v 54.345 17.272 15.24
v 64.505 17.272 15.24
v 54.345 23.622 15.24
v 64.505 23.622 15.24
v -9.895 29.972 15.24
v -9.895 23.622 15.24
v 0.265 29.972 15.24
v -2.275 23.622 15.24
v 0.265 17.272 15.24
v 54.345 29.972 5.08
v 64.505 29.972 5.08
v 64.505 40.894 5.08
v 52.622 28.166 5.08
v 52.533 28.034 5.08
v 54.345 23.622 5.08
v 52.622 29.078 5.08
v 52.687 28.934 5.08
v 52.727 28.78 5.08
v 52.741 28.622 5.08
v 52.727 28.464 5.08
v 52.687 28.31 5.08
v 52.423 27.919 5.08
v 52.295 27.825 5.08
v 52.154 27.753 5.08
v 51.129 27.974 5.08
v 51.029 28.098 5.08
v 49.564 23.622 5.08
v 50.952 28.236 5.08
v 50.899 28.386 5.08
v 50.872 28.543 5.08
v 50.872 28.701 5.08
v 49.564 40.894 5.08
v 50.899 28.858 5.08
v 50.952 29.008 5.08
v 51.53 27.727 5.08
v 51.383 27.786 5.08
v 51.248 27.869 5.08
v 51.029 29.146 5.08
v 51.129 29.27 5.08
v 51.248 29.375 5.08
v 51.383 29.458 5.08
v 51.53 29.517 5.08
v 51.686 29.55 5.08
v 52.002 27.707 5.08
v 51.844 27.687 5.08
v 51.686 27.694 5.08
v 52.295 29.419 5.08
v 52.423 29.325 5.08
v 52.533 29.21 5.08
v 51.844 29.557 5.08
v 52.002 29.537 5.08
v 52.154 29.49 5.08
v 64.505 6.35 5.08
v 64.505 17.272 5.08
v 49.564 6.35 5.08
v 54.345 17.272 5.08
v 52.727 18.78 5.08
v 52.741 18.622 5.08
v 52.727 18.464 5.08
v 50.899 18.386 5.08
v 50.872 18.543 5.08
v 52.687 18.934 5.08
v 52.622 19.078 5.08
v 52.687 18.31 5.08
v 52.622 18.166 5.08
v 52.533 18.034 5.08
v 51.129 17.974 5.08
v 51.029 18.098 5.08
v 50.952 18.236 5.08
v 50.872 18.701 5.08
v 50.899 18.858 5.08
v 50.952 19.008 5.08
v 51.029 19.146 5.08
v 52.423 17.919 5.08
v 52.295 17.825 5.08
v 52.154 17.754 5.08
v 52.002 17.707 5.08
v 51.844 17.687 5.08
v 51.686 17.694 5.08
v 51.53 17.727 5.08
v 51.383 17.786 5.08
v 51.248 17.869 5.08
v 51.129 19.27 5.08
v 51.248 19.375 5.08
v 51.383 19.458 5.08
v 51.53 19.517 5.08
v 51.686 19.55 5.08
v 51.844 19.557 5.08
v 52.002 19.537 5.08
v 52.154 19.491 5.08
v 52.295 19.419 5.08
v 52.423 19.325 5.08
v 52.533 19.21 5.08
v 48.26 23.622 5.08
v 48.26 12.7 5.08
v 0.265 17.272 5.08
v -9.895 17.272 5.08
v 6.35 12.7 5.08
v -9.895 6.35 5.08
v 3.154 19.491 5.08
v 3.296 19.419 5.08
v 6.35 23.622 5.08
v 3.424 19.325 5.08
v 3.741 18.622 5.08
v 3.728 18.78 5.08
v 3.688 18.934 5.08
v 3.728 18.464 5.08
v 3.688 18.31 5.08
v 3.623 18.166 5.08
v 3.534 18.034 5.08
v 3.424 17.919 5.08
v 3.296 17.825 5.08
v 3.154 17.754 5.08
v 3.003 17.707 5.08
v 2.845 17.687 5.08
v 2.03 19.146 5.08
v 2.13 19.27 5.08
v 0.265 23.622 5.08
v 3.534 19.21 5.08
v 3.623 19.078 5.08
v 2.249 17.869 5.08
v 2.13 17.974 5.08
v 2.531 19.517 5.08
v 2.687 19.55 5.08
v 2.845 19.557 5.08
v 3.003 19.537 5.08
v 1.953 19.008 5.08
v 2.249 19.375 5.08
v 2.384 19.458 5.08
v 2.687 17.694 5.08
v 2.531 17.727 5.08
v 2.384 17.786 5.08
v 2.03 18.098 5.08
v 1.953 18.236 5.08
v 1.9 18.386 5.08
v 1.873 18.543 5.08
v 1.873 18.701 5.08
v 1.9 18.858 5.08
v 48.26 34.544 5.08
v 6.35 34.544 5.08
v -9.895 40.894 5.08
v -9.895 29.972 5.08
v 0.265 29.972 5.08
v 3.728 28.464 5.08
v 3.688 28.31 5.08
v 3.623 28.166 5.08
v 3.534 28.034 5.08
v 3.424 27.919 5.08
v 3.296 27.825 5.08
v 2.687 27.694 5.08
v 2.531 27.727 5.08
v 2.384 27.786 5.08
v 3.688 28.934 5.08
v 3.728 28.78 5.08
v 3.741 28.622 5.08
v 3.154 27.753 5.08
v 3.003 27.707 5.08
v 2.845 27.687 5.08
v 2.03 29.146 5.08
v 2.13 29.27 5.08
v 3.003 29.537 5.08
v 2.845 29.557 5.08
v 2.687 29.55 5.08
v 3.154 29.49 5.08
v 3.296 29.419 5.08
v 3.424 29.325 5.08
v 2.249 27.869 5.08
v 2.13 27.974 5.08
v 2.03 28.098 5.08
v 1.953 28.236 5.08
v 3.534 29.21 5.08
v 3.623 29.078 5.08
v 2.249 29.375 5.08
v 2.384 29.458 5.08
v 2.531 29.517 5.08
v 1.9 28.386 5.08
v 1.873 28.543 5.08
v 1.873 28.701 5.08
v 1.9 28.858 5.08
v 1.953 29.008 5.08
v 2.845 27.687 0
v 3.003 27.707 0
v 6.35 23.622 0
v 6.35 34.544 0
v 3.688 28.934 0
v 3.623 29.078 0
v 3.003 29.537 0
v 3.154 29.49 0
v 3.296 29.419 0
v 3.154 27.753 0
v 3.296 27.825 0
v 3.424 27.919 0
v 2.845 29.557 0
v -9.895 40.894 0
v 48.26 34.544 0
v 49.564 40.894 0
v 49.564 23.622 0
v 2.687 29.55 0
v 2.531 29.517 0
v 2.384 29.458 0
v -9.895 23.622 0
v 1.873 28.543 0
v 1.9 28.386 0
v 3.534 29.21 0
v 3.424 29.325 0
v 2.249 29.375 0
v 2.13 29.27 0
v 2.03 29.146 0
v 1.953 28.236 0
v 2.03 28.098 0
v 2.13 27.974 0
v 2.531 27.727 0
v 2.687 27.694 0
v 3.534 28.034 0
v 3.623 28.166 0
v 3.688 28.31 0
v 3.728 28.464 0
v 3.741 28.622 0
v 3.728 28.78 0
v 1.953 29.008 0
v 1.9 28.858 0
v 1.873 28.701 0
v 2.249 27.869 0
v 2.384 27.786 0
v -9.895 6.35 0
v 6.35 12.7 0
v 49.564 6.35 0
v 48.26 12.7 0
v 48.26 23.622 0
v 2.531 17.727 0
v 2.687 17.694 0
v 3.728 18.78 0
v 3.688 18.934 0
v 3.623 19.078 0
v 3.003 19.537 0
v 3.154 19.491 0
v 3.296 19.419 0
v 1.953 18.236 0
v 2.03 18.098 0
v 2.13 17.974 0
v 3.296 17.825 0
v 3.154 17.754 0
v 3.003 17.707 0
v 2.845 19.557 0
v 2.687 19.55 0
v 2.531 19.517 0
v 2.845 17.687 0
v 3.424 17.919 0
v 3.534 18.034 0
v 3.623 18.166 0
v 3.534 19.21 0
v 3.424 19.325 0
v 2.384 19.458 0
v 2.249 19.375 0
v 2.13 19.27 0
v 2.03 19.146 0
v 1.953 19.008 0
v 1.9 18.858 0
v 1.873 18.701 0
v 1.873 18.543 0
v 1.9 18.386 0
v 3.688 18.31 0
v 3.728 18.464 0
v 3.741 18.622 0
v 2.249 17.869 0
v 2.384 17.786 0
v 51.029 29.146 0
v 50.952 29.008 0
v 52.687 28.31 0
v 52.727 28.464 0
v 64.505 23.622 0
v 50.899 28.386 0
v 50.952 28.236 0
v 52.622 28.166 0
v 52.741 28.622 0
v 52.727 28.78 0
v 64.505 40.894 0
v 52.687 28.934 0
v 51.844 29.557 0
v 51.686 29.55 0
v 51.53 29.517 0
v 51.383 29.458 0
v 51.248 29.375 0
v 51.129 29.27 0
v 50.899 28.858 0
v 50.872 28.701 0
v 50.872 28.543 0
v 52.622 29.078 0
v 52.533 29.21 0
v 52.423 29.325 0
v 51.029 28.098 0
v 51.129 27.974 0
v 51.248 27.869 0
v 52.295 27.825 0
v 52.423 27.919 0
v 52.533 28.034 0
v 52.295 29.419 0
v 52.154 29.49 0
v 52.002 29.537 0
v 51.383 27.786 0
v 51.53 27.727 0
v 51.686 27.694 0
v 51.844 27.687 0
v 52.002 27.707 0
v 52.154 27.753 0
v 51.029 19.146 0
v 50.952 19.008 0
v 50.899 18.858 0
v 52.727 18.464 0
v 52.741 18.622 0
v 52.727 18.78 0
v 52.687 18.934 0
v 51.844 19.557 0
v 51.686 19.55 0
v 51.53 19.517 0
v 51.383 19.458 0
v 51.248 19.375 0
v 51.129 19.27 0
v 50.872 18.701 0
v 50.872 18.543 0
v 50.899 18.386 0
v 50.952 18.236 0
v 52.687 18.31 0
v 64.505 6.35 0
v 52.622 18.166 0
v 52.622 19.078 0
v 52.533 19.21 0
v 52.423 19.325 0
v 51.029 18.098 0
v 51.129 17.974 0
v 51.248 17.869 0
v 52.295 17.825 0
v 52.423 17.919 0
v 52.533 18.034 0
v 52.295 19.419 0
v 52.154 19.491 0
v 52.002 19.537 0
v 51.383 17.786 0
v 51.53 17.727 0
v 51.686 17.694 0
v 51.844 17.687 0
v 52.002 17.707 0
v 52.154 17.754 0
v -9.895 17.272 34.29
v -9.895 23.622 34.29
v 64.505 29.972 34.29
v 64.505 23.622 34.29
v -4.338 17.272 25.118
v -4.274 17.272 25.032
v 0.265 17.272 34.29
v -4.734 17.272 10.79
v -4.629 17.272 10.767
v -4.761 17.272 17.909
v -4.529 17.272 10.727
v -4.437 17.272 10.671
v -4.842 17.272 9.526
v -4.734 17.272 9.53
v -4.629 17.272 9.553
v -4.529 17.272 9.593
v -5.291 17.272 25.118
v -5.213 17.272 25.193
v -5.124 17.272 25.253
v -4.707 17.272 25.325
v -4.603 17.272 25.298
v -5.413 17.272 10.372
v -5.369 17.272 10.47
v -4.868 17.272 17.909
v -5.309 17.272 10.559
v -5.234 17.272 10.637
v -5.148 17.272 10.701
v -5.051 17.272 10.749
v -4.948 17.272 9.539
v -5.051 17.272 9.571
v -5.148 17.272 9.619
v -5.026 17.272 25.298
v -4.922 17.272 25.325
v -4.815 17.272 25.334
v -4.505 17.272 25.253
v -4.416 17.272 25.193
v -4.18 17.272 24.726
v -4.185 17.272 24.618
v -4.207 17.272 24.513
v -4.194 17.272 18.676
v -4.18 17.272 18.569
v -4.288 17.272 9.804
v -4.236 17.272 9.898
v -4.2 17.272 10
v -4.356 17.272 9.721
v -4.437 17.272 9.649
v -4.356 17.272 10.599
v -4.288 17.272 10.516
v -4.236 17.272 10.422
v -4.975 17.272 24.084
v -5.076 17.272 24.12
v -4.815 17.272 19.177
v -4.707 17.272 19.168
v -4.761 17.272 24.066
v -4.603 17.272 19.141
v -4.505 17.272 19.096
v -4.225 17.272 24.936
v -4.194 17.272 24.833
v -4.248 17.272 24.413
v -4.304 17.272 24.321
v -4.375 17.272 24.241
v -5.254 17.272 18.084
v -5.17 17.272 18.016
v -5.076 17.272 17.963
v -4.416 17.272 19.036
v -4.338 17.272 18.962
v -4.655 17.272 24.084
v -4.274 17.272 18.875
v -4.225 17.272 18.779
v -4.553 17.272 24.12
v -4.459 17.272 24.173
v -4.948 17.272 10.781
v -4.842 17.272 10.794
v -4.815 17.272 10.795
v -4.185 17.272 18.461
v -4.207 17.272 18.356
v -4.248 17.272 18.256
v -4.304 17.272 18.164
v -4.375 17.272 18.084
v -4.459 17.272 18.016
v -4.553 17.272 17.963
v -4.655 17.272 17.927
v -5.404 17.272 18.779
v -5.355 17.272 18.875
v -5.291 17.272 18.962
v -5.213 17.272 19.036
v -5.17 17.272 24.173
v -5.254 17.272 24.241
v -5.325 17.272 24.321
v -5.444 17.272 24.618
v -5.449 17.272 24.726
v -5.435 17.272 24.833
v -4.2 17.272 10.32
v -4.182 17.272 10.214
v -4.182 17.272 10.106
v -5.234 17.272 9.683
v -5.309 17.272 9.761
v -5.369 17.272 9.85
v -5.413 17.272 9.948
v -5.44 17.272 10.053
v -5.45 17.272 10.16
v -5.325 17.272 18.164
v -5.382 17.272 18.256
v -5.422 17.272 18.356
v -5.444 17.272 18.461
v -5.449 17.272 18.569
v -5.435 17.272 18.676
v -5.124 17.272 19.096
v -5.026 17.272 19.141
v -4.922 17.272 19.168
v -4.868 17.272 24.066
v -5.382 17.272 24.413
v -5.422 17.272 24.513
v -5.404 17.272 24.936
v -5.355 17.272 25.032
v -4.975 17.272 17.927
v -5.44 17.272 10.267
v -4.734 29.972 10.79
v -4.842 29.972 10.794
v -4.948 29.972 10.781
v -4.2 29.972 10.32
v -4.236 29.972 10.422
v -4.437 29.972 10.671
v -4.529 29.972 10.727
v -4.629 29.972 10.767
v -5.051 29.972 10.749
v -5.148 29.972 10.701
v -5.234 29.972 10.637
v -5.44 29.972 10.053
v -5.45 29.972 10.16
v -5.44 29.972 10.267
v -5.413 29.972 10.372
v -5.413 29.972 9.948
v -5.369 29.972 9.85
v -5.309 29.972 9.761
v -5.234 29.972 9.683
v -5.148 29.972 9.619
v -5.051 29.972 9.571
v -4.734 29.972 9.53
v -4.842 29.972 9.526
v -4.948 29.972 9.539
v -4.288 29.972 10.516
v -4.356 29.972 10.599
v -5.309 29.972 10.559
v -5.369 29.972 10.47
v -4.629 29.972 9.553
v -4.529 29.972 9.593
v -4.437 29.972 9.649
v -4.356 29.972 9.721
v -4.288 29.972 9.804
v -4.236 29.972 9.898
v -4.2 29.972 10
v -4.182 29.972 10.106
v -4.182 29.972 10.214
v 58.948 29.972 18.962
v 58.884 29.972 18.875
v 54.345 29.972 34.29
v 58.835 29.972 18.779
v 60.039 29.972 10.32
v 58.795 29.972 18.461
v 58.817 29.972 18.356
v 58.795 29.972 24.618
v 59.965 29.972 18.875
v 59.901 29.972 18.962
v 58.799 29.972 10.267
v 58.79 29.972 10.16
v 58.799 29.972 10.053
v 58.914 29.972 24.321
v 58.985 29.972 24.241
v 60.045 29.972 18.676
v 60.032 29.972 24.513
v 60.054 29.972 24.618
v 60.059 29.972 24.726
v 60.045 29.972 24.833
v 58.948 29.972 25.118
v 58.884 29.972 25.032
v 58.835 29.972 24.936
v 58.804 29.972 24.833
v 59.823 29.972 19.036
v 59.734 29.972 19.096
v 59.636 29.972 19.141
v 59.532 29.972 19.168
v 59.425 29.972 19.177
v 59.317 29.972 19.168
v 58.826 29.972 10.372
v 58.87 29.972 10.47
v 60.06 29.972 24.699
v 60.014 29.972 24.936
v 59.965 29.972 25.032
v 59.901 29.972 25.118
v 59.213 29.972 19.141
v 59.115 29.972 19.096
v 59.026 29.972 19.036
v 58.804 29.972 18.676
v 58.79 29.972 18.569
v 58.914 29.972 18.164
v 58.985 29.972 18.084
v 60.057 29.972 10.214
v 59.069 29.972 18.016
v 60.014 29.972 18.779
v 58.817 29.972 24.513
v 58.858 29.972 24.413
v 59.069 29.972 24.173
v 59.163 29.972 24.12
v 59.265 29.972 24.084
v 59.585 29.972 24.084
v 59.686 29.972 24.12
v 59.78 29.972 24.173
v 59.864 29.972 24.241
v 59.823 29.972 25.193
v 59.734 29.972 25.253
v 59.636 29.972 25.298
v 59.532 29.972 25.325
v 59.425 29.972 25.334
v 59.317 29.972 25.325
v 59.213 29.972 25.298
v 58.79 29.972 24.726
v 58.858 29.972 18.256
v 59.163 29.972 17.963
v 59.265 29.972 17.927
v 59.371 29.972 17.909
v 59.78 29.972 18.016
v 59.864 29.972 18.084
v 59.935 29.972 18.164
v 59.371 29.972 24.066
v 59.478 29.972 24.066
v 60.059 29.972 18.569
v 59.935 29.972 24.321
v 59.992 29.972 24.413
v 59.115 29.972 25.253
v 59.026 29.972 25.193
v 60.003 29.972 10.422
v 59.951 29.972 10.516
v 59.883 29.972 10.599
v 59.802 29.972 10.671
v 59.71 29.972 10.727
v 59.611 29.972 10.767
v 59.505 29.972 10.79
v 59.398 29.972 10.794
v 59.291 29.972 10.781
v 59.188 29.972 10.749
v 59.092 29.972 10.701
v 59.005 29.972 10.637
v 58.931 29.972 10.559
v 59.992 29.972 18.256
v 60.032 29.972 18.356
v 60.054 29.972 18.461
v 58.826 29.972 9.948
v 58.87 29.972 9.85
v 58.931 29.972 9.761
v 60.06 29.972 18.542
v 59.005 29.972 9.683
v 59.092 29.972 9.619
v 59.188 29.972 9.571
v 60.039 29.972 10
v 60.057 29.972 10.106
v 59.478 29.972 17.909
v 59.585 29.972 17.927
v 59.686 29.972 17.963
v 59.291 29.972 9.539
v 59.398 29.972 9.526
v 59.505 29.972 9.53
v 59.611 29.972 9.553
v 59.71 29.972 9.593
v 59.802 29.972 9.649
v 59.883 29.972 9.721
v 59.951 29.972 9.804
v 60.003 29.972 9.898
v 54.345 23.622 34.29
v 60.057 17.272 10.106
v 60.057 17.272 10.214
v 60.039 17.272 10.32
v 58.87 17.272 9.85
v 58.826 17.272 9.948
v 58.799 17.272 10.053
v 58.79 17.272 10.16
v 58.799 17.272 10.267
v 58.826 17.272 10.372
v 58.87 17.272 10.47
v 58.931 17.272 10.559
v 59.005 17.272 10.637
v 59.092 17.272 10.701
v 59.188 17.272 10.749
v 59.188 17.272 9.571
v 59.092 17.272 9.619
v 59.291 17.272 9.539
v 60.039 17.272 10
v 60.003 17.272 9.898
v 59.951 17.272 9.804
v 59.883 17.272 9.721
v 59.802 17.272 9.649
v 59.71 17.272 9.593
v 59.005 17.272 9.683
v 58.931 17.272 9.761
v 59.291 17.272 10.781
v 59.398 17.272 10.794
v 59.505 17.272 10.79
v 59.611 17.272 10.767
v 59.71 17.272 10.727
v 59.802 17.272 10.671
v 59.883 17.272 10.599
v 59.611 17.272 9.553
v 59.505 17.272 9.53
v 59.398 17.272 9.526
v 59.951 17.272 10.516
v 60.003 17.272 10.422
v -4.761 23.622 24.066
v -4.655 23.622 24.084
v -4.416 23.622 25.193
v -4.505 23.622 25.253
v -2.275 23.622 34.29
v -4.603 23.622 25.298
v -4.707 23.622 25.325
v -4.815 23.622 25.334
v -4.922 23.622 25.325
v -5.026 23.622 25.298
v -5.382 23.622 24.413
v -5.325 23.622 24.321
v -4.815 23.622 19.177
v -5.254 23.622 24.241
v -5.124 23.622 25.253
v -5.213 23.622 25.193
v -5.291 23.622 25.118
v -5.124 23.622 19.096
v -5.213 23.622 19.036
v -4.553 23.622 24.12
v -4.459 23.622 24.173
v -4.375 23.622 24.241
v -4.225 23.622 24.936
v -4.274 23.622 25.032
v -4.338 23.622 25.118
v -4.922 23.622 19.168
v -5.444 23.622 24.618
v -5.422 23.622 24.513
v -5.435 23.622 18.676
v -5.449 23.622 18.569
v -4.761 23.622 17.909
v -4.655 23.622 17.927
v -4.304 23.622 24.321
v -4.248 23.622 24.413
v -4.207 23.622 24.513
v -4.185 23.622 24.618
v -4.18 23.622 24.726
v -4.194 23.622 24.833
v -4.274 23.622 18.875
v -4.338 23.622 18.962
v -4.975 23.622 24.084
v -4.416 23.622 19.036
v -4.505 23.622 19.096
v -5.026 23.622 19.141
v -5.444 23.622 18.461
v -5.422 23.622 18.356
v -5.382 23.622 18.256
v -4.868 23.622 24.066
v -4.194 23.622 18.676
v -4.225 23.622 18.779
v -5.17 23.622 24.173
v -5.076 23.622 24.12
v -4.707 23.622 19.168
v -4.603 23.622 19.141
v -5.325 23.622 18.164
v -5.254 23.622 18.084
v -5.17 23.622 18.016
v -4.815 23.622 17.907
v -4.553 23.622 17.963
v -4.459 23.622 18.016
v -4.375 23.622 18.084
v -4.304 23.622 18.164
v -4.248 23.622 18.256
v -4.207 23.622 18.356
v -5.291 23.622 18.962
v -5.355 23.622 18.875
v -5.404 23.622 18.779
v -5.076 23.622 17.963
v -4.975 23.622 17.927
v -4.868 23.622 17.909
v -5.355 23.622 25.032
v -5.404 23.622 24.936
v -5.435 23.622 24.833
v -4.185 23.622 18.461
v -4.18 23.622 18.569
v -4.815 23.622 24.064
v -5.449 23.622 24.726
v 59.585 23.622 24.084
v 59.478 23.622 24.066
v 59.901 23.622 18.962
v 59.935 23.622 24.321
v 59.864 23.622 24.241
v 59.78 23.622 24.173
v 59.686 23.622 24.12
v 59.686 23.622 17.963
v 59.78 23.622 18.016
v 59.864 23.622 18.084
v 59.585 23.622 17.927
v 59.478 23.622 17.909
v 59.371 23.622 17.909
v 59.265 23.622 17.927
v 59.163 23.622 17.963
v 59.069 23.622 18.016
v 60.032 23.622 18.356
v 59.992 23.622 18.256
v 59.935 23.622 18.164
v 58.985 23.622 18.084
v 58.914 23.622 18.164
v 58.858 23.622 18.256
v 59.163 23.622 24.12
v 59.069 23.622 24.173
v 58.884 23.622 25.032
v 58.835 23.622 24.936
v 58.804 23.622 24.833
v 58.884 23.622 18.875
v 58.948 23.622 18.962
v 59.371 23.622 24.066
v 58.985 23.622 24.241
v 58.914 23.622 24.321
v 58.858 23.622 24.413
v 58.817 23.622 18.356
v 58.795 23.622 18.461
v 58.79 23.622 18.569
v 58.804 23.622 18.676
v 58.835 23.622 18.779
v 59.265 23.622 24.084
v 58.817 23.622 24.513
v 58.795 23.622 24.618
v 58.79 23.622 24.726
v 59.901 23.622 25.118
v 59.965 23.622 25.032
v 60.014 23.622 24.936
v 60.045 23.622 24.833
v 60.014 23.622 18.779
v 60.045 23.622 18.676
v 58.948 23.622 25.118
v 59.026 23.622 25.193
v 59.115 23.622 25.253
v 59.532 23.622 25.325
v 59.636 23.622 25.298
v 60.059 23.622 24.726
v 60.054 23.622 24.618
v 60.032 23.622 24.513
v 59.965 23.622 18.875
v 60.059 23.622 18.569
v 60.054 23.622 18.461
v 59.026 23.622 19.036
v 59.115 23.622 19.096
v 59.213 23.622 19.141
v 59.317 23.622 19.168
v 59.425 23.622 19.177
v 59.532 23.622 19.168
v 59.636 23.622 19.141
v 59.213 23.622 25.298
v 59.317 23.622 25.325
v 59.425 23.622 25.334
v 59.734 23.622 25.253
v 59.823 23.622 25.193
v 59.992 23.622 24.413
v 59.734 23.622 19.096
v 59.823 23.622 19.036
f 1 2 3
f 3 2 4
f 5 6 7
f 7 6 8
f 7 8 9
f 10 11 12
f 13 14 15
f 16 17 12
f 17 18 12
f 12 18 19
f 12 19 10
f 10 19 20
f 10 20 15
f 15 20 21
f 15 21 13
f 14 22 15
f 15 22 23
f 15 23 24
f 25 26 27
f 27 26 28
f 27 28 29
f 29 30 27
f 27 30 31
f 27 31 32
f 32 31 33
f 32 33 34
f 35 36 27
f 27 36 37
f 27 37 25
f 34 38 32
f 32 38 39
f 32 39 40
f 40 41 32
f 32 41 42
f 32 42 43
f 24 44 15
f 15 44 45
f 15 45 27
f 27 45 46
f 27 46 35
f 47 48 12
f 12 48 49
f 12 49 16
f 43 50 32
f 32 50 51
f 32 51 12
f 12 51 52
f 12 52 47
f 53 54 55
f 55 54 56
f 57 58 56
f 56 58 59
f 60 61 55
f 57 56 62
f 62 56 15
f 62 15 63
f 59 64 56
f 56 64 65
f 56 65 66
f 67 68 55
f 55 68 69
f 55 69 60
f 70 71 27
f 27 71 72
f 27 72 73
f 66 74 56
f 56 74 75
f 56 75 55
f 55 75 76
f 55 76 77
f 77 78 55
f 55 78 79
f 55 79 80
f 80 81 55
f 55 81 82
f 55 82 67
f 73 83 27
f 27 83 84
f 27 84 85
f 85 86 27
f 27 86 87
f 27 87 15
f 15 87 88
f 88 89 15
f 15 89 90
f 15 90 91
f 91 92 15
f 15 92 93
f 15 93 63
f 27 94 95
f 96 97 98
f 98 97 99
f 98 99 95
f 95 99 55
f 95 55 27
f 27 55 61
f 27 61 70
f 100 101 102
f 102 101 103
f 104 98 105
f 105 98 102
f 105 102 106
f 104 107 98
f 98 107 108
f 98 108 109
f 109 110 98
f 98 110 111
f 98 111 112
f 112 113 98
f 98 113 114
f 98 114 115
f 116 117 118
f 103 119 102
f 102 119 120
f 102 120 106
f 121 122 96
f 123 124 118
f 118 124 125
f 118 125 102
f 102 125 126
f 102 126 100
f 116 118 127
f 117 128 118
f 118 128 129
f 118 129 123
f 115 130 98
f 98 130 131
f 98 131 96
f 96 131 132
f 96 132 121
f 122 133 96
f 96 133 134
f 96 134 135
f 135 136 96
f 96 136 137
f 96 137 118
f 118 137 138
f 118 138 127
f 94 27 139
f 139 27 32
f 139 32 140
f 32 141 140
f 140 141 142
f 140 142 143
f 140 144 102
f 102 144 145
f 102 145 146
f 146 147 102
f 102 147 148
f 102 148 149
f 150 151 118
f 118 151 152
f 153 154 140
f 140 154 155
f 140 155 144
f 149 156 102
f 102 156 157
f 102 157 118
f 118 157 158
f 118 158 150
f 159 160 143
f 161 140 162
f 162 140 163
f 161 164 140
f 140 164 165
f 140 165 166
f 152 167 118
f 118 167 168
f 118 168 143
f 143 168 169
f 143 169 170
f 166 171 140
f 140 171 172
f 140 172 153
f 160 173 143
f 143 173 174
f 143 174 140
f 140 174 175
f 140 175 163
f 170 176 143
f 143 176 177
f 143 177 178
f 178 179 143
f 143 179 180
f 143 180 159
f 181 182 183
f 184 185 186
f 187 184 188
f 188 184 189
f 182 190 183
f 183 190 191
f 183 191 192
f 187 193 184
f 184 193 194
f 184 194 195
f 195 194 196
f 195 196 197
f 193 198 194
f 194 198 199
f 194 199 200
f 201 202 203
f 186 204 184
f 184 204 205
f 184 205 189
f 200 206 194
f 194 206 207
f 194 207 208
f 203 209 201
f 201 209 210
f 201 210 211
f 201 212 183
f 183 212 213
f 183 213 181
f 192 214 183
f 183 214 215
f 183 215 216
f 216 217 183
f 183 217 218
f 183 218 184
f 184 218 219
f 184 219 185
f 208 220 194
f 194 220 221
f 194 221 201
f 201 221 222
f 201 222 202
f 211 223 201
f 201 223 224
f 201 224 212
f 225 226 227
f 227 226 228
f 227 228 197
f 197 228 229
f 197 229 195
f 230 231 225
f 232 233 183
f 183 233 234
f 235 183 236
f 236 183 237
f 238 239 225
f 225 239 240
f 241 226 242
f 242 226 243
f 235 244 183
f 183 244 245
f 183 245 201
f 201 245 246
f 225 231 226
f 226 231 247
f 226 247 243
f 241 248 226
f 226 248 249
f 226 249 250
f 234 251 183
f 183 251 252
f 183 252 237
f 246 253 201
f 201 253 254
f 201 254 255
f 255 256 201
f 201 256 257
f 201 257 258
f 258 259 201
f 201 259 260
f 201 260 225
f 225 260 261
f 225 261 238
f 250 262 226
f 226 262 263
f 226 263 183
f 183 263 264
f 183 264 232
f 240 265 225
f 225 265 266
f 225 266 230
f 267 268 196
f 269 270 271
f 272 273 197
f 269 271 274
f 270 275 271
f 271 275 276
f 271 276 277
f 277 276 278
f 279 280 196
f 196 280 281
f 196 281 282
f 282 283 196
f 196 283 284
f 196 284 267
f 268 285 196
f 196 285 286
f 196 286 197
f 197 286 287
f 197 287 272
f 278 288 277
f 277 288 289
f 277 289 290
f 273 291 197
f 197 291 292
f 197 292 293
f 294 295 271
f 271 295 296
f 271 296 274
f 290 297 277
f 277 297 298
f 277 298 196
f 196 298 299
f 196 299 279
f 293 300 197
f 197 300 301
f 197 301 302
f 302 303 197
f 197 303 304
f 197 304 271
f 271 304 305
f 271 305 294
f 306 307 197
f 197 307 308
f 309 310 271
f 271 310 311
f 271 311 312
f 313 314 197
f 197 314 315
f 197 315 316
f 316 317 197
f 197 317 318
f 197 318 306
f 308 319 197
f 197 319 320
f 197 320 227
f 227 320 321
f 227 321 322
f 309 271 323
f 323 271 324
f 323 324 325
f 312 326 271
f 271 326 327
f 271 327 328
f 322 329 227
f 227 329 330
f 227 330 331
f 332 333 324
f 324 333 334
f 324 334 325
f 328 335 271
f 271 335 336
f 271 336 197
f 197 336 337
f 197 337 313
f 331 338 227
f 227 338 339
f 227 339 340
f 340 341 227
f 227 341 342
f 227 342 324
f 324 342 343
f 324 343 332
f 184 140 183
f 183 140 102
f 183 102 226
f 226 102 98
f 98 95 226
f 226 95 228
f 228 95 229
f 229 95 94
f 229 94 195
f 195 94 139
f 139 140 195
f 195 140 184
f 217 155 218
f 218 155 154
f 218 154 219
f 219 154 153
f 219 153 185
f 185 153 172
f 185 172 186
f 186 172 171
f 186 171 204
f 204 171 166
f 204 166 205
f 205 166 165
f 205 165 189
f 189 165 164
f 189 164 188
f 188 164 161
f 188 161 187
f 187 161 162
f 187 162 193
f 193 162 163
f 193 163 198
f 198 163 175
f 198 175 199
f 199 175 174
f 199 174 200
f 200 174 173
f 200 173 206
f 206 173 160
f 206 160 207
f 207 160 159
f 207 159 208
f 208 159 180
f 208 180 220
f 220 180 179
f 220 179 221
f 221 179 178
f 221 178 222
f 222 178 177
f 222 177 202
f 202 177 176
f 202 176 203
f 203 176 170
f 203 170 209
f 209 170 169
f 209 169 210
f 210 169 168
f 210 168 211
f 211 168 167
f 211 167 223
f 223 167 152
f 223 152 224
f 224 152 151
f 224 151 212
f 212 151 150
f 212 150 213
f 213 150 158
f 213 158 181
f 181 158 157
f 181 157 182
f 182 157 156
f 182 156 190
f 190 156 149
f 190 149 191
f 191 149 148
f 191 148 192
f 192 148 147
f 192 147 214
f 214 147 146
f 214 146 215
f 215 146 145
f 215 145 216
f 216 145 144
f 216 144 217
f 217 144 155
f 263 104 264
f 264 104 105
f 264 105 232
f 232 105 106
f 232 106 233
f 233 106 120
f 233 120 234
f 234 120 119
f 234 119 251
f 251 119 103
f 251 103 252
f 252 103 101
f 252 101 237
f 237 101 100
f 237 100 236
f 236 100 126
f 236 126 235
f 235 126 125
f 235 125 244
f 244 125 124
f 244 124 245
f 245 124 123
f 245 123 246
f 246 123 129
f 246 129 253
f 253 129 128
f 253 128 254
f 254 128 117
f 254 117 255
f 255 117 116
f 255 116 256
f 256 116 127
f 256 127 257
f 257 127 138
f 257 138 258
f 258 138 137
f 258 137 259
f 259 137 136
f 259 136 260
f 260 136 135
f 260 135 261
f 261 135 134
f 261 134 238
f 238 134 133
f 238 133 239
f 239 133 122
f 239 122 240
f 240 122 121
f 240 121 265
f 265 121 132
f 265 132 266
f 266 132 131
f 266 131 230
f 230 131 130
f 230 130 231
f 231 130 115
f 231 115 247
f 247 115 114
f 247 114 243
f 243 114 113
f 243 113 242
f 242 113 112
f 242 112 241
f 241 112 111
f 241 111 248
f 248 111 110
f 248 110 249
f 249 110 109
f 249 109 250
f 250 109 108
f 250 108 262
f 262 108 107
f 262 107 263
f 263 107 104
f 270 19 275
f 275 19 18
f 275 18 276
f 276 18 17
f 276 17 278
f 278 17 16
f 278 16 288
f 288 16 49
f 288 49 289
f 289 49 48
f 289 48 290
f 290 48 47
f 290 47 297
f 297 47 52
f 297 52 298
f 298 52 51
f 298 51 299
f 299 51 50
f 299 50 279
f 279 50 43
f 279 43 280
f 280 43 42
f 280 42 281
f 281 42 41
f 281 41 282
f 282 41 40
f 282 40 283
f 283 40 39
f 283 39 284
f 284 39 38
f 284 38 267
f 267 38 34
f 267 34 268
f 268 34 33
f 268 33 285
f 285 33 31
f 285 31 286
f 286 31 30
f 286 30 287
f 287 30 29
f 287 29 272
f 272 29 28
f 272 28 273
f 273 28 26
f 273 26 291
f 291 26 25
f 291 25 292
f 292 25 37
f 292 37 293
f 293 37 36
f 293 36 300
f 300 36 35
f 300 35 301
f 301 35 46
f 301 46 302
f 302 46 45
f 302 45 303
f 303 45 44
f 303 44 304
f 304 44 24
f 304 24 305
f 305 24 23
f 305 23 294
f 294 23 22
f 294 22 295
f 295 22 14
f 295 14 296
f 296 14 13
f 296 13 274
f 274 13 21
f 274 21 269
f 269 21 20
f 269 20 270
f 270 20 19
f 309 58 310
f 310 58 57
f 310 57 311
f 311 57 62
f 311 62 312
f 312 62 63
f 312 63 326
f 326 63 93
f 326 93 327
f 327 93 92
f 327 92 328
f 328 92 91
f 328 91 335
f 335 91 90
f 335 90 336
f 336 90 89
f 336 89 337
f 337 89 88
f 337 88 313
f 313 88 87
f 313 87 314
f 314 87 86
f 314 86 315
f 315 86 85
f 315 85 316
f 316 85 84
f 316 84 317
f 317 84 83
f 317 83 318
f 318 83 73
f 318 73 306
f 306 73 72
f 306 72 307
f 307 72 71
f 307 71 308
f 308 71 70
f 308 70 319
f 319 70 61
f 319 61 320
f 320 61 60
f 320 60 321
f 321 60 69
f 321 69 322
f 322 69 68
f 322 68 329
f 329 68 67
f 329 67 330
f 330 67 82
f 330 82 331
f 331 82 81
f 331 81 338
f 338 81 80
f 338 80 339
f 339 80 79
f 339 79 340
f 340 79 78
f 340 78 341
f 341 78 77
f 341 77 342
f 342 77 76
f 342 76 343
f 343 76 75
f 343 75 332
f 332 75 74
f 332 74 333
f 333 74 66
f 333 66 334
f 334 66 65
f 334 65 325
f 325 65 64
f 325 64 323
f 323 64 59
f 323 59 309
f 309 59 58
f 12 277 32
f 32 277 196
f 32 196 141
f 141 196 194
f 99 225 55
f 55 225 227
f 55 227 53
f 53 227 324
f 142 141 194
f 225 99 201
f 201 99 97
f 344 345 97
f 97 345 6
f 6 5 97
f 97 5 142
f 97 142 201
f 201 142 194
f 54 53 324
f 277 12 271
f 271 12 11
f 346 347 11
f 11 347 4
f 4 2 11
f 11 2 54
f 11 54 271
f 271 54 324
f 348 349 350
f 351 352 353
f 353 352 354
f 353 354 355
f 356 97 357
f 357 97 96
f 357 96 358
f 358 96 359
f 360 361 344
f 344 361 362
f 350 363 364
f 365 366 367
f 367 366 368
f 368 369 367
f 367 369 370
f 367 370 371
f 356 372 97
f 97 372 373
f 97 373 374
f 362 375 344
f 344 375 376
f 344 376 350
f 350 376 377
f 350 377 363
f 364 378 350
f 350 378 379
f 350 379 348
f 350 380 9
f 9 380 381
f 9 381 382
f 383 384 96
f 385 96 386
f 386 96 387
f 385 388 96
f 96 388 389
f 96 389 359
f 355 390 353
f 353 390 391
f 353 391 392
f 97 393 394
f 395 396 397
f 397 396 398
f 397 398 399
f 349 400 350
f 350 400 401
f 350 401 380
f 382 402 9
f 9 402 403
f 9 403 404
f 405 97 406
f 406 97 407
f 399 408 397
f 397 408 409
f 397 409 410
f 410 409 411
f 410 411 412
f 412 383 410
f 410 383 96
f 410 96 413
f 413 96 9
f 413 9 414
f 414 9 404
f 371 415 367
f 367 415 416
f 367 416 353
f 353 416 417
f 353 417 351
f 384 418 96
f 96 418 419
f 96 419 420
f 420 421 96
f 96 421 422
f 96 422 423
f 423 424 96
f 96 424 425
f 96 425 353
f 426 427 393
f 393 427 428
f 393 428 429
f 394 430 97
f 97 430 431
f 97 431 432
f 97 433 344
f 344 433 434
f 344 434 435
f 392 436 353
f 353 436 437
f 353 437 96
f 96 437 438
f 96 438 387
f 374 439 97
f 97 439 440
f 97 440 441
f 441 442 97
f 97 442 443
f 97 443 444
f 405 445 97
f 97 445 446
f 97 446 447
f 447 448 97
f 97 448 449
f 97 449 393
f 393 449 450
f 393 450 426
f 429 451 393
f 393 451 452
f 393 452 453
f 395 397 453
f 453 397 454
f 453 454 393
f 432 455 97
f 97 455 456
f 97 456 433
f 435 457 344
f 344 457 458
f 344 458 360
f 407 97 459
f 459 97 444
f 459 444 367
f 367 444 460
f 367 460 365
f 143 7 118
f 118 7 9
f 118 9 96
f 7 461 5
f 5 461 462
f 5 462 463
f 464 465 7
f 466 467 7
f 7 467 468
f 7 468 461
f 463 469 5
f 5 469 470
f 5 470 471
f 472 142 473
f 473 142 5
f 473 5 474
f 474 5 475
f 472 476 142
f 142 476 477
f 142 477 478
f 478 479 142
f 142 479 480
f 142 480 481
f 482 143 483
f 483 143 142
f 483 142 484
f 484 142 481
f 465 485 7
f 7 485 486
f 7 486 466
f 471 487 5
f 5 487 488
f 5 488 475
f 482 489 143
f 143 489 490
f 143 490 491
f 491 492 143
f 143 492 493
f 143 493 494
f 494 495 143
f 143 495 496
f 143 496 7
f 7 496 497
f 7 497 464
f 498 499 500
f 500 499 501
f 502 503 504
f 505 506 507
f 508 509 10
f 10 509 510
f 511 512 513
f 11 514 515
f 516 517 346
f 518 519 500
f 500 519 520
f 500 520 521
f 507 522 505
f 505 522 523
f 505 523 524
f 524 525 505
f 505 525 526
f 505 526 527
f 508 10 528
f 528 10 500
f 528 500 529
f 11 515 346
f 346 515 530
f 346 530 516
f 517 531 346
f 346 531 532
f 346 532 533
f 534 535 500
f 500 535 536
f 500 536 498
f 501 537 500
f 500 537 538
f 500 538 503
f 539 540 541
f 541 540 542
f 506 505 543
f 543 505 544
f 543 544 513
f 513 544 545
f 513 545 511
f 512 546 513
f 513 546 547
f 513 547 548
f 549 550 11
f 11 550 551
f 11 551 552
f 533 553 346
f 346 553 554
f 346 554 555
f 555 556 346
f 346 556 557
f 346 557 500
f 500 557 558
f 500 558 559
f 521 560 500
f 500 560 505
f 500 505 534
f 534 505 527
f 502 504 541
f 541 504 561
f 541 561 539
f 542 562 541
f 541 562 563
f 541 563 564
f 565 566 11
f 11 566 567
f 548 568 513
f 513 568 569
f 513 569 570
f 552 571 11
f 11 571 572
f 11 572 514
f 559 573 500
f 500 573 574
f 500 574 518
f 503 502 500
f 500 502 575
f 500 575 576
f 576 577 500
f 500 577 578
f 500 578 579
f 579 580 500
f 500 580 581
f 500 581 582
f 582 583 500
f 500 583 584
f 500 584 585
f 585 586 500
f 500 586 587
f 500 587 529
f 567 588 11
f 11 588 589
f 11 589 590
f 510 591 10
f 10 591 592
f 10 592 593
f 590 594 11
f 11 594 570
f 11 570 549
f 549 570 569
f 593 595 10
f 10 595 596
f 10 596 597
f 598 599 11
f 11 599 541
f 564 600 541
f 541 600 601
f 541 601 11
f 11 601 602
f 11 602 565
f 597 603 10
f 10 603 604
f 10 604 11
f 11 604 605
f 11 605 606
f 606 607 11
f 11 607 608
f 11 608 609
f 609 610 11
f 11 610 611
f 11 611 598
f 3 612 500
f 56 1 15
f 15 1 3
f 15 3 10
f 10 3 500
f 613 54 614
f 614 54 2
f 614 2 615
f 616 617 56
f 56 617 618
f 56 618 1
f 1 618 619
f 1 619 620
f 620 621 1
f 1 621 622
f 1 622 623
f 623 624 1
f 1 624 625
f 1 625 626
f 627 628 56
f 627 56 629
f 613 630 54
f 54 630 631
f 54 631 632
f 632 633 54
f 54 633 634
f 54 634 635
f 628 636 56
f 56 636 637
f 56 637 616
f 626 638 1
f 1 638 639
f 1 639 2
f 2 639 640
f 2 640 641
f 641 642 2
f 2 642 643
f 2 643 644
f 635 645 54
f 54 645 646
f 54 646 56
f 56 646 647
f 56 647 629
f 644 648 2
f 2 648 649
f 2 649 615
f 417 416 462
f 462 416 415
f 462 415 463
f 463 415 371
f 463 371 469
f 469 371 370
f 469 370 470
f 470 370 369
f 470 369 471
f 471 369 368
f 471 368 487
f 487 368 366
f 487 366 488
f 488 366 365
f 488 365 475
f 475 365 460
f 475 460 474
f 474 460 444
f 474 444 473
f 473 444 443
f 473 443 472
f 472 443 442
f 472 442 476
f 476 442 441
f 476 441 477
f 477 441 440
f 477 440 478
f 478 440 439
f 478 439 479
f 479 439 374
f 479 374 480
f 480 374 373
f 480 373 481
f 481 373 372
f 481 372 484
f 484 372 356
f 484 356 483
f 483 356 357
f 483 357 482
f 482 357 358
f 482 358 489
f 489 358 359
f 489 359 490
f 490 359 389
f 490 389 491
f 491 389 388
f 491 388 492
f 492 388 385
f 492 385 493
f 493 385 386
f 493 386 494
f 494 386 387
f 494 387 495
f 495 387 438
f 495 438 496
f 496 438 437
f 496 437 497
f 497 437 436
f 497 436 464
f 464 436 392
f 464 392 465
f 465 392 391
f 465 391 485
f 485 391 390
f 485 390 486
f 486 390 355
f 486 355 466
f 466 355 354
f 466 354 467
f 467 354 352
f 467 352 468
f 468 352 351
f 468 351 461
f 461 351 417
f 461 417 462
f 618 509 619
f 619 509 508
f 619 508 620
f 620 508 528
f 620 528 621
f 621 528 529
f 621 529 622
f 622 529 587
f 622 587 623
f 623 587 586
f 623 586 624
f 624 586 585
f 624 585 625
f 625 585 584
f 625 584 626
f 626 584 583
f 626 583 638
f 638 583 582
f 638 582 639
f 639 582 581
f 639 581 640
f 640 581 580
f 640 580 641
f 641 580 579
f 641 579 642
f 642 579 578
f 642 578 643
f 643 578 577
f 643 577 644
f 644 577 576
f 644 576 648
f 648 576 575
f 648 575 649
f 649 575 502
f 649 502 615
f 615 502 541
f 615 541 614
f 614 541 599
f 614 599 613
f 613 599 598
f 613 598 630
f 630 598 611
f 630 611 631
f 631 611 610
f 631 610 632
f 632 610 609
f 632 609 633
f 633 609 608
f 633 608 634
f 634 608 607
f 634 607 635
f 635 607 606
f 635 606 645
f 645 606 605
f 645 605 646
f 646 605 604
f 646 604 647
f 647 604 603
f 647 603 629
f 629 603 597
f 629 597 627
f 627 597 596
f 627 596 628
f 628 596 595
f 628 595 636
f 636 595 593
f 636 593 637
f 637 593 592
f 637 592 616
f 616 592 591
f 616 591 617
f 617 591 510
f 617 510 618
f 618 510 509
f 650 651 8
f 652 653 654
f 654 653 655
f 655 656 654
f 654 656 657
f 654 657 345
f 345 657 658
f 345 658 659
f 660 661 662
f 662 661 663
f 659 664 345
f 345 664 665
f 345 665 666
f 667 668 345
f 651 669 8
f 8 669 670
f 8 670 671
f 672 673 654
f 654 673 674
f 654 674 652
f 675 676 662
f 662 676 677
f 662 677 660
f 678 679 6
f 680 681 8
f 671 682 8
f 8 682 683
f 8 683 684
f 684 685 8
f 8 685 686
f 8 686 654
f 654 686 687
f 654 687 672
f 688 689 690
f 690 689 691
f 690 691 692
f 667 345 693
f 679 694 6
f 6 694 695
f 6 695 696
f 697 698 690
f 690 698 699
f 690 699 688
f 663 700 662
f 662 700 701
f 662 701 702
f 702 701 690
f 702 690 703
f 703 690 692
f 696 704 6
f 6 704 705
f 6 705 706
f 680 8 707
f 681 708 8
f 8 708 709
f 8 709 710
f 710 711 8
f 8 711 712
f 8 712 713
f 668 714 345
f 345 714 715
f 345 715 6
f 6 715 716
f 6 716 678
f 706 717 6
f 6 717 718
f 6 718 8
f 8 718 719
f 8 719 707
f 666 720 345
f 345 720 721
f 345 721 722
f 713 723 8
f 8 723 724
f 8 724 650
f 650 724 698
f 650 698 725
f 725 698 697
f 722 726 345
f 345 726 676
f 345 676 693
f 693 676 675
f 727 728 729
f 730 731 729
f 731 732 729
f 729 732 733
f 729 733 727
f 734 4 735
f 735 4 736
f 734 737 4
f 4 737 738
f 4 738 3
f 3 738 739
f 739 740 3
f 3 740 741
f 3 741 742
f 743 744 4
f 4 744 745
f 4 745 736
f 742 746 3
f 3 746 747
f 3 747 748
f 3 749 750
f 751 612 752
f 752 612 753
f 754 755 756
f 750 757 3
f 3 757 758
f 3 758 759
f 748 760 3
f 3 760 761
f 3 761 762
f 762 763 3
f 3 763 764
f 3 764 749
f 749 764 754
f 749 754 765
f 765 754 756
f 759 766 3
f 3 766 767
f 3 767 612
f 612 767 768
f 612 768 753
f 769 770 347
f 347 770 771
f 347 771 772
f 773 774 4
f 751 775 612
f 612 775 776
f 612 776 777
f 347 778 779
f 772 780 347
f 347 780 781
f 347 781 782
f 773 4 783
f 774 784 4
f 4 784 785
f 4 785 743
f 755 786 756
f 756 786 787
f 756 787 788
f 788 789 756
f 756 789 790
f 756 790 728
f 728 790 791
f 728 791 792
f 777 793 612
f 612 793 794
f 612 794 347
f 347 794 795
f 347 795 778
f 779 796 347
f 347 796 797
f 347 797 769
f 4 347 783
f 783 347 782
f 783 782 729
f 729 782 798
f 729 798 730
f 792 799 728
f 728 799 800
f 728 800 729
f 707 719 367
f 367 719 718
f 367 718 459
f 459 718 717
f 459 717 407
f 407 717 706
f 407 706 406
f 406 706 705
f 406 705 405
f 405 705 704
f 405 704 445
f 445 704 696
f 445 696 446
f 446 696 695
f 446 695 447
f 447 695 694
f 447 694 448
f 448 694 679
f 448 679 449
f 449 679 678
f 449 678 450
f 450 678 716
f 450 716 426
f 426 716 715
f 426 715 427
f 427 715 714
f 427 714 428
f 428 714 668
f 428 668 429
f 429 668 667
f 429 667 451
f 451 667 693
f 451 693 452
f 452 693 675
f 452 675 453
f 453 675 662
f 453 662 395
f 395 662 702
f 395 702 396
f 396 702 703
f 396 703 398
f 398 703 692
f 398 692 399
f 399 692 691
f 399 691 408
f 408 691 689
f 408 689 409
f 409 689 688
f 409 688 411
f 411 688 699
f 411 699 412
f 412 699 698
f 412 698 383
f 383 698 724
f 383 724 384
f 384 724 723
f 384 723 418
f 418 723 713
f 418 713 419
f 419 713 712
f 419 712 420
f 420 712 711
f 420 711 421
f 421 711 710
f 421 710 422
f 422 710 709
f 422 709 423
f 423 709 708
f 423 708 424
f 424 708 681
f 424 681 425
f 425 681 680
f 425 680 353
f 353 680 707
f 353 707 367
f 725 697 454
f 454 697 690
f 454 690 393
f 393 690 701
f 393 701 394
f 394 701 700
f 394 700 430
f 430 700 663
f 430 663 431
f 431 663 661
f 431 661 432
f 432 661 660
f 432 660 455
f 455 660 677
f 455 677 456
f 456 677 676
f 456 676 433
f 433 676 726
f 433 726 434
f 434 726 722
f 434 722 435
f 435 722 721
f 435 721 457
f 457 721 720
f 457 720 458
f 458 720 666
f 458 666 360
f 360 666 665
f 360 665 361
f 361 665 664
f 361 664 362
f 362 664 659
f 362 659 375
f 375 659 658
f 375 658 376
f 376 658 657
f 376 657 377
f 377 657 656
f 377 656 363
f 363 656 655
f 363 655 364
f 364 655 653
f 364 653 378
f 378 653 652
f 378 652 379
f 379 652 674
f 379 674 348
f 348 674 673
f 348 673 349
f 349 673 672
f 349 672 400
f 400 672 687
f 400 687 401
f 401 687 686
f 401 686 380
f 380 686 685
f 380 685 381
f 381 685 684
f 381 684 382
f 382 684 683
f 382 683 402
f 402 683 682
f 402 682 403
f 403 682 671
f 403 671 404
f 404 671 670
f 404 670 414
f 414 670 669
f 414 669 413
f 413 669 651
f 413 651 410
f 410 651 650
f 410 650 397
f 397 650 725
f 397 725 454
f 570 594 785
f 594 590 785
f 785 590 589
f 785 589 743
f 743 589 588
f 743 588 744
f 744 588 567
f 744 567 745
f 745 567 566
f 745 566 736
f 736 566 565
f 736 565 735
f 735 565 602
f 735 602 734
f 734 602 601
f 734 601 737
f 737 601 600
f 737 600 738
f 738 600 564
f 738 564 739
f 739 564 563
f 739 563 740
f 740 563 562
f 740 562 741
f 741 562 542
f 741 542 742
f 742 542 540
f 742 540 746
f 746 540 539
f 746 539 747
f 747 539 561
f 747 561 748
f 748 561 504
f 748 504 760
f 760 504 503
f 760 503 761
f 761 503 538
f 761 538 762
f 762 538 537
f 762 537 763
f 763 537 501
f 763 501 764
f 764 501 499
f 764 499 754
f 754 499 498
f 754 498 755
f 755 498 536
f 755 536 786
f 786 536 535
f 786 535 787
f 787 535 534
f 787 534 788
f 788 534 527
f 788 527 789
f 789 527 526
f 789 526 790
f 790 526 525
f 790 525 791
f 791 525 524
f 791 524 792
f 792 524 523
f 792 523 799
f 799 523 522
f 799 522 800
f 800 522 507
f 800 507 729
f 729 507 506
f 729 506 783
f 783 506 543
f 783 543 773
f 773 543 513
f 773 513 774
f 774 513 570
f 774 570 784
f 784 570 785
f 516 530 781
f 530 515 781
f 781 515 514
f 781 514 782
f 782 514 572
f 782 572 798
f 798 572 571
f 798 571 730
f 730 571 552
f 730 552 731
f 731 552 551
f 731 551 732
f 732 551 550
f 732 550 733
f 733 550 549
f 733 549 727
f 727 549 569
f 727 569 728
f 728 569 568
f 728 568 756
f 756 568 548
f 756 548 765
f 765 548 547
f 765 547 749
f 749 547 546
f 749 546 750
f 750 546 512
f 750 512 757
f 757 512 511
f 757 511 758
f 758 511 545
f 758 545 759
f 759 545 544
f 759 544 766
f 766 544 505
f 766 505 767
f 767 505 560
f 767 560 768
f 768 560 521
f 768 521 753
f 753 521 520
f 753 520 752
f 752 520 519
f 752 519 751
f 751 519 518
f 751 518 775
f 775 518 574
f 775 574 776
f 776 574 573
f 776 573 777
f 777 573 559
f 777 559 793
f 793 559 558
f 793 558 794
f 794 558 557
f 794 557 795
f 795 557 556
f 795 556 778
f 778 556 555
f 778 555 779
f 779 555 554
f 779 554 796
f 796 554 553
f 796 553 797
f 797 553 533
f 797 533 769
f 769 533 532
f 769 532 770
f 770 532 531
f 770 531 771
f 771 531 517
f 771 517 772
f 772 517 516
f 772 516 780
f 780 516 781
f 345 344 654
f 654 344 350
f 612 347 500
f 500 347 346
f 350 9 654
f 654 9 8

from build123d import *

# Parameters (mm, degrees)
SKETCH1_W               = 54.61
SKETCH1_H               = 47.244
SKETCH1_W_2             = 41.91
SKETCH1_H_2             = 21.844
BOSS_EXTRUDE1_DEPTH     = 5.08
SKETCH2_R               = 0.93599
CUT_EXTRUDE1_DEPTH      = 73.388217522
SKETCH10_W              = 14.41958
SKETCH10_H              = 19.49958
SKETCH10_R              = 0.635
BOSS_EXTRUDE4_DEPTH     = 5.08
SKETCH11_R              = 0.635
SKETCH11_W              = 3.302
SKETCH11_H              = 76.2
BOSS_EXTRUDE5_DEPTH     = 5.08
SKETCH12_W              = 60.452
SKETCH12_H              = 6.35
SKETCH12_W_2            = 59.182
CUT_EXTRUDE2_DEPTH      = 95.448366629
SKETCH13_W              = 7.0195552
SKETCH13_H              = 78.993394517
BOSS_EXTRUDE6_DEPTH     = 4.826
FILLET1_R               = 2.54
CUT_EXTRUDE3_DEPTH      = 95.448366629
SKETCH15_W              = 9.078627065
SKETCH15_H              = 34.544
BOSS_EXTRUDE7_DEPTH     = 5.08
SKETCH16_W              = 10.16
SKETCH16_H              = 12.7
BOSS_EXTRUDE8_DEPTH     = 10.16
SKETCH17_R              = 0.635
CUT_EXTRUDE4_DEPTH      = 71.364025147
SKETCH18_W              = 10.16
SKETCH18_H              = 6.35
BOSS_EXTRUDE9_DEPTH     = 12.76096
CUT_EXTRUDE5_DEPTH      = 73.410049688
CUT_EXTRUDE5_DEPTH_BACK = 73.410049688
SKETCH19_R              = 0.635
SKETCH20_W              = 10.16
SKETCH20_H              = 6.35
BOSS_EXTRUDE10_DEPTH    = 6.28904
CUT_EXTRUDE7_DEPTH      = 19.05


with BuildPart() as part:
    # Sketch1 → Boss-Extrude1 (new body)
    with BuildSketch(Plane.XY):
        with Locations((27.305, 23.622)):
            Rectangle(SKETCH1_W, SKETCH1_H)
        with Locations((27.305, 23.622)):
            Rectangle(SKETCH1_W_2, SKETCH1_H_2, mode=Mode.SUBTRACT)
    extrude(amount=BOSS_EXTRUDE1_DEPTH)

    # Sketch2 → Cut-Extrude1 (cut, through all)
    with BuildSketch(Plane.XY.offset(5.08)):
        with Locations((2.80543, 28.62199)):
            Circle(SKETCH2_R)
        with Locations((2.80543, 18.62201)):
            Circle(SKETCH2_R)
        with Locations((51.80457, 28.62199)):
            Circle(SKETCH2_R)
        with Locations((51.80457, 18.62201)):
            Circle(SKETCH2_R)
    extrude(amount=-CUT_EXTRUDE1_DEPTH, mode=Mode.SUBTRACT)

    # Sketch10 → Boss-Extrude4 (add)
    with BuildSketch(Plane.XY.offset(5.08)):
        with Locations((61.81979, 23.622)):
            Rectangle(SKETCH10_W, SKETCH10_H)
        with Locations((64.35979, 21.49221)):
            Circle(SKETCH10_R, mode=Mode.SUBTRACT)
        with Locations((64.35979, 25.75179)):
            Circle(SKETCH10_R, mode=Mode.SUBTRACT)
    extrude(amount=-BOSS_EXTRUDE4_DEPTH)

    # Sketch11 → Boss-Extrude5 (add)
    with BuildSketch(Plane.XY.offset(5.08)):
        Polygon((0, 47.244), (-5.842, 47.244), (-5.842, 64.262), (-15.748, 64.262), (-15.748, -17.018), (-4.572, -17.018), (-4.572, 0), (0, 0), align=None)
        with Locations(Location((-4.572, 21.49221, 0), (0, 0, 180))):
            Circle(SKETCH11_R, mode=Mode.SUBTRACT)
        with Locations(Location((-4.572, 25.75179, 0), (0, 0, 180))):
            Circle(SKETCH11_R, mode=Mode.SUBTRACT)
        with Locations((-10.795, 23.622)):
            Rectangle(SKETCH11_W, SKETCH11_H, mode=Mode.SUBTRACT)
    extrude(amount=-BOSS_EXTRUDE5_DEPTH)

    # Sketch12 → Cut-Extrude2 (cut, through all)
    with BuildSketch(Plane.XY.offset(5.08)):
        with Locations((24.384, 44.069)):
            Rectangle(SKETCH12_W, SKETCH12_H)
        with Locations((25.019, 3.175)):
            Rectangle(SKETCH12_W_2, SKETCH12_H)
    extrude(amount=-CUT_EXTRUDE2_DEPTH, mode=Mode.SUBTRACT)

    # Sketch13 → Boss-Extrude6 (add)
    with BuildSketch(Plane(origin=(0, 0, 0), x_dir=(-1, 0, 0), z_dir=(0, 0, -1))):
        with Locations((10.665198327, 23.388014827)):
            Rectangle(SKETCH13_W, SKETCH13_H)
    extrude(amount=-BOSS_EXTRUDE6_DEPTH)

    # Fillet1
    fillet1_edges = [part.edges().sort_by_distance(p)[0] for p in [
        (69.02958, 13.87221, 2.54),
        (54.61, 13.87221, 2.54),
        (54.61, 6.35, 2.54),
        (-4.572, 6.35, 2.54),
        (-4.572, -17.018, 2.54),
        (-15.748, -17.018, 2.54),
        (-15.748, 64.262, 2.54),
        (-5.842, 64.262, 2.54),
        (-5.842, 40.894, 2.54),
        (54.61, 40.894, 2.54),
        (54.61, 33.37179, 2.54),
        (69.02958, 33.37179, 2.54),
    ]]
    fillet(fillet1_edges, radius=FILLET1_R)

    # Sketch14 → Cut-Extrude3 (cut, through all)
    with BuildSketch(Plane.XY.offset(5.08)):
        Polygon((2.80543, 40.894), (-0.815942935, 40.894), (-0.815942935, 6.35), (2.80543, 6.35), (2.80543, -19.941776761), (-23.515321153, -19.941776761), (-23.515321153, 65.826532556), (2.80543, 65.826532556), align=None)
        Polygon((51.80457, 40.896870143), (51.80457, 65.826532556), (74.486186006, 65.826532556), (74.486186006, -19.941776761), (51.80457, -19.941776761), (52.07, 6.35), (54.61, 8.89), (54.61, 38.354), align=None)
    extrude(amount=-CUT_EXTRUDE3_DEPTH, mode=Mode.SUBTRACT)

    # Sketch15 → Boss-Extrude7 (add)
    with BuildSketch(Plane.XY.offset(5.08)):
        with Locations((-5.355256468, 23.622)):
            Rectangle(SKETCH15_W, SKETCH15_H)
        Polygon((51.807736495, 40.894), (54.61, 38.354), (54.61, 8.89), (52.07, 6.35), (64.50457, 6.35), (64.50457, 40.894), align=None)
    extrude(amount=-BOSS_EXTRUDE7_DEPTH)

    # Sketch16 → Boss-Extrude8 (add)
    with BuildSketch(Plane.XY.offset(5.08)):
        with Locations((-4.81457, 23.622)):
            Rectangle(SKETCH16_W, SKETCH16_H)
        with Locations((59.42457, 23.622)):
            Rectangle(SKETCH16_W, SKETCH16_H)
    extrude(amount=BOSS_EXTRUDE8_DEPTH)

    # Sketch17 → Cut-Extrude4 (cut, through all)
    with BuildSketch(Plane(origin=(0, 29.972, 0), x_dir=(1, 0, 0), z_dir=(0, 1, 0))):
        with Locations(Location((-4.81457, -10.16, 0), (0, 0, 180))):
            Circle(SKETCH17_R)
        with Locations(Location((59.42457, -10.16, 0), (0, 0, 180))):
            Circle(SKETCH17_R)
    extrude(amount=-CUT_EXTRUDE4_DEPTH, mode=Mode.SUBTRACT)

    # Sketch18 → Boss-Extrude9 (add)
    with BuildSketch(Plane.XY.offset(15.24)):
        with Locations((-4.81457, 20.447)):
            Rectangle(SKETCH18_W, SKETCH18_H)
        with Locations((59.42457, 26.797)):
            Rectangle(SKETCH18_W, SKETCH18_H)
    extrude(amount=BOSS_EXTRUDE9_DEPTH)

    # Sketch19 → Cut-Extrude5 (cut, two sides: drawn at the far end of the back side and taken through both)
    with BuildSketch(Plane(origin=(0, 23.622, 0), x_dir=(1, 0, 0), z_dir=(0, 1, 0)).offset(-CUT_EXTRUDE5_DEPTH_BACK)):
        with Locations(Location((-4.81457, -18.542, 0), (0, 0, 270))):
            Circle(SKETCH19_R)
        with Locations(Location((-4.81457, -24.69896, 0), (0, 0, 270))):
            Circle(SKETCH19_R)
        with Locations(Location((59.42457, -18.542, 0), (0, 0, 270))):
            Circle(SKETCH19_R)
        with Locations(Location((59.42457, -24.69896, 0), (0, 0, 270))):
            Circle(SKETCH19_R)
    extrude(amount=CUT_EXTRUDE5_DEPTH + CUT_EXTRUDE5_DEPTH_BACK, mode=Mode.SUBTRACT)

    # Sketch20 → Boss-Extrude10 (add)
    with BuildSketch(Plane.XY.offset(28.00096)):
        with Locations((-4.81457, 20.447)):
            Rectangle(SKETCH20_W, SKETCH20_H)
        with Locations((59.42457, 26.797)):
            Rectangle(SKETCH20_W, SKETCH20_H)
    extrude(amount=BOSS_EXTRUDE10_DEPTH)

    # Sketch22 → Cut-Extrude7 (cut)
    with BuildSketch(Plane.XY.offset(34.29)):
        Polygon((0.26543, 17.272), (-2.27457, 23.622), (0.26543, 23.622), align=None)
    extrude(amount=-CUT_EXTRUDE7_DEPTH, mode=Mode.SUBTRACT)


solid = part.part
